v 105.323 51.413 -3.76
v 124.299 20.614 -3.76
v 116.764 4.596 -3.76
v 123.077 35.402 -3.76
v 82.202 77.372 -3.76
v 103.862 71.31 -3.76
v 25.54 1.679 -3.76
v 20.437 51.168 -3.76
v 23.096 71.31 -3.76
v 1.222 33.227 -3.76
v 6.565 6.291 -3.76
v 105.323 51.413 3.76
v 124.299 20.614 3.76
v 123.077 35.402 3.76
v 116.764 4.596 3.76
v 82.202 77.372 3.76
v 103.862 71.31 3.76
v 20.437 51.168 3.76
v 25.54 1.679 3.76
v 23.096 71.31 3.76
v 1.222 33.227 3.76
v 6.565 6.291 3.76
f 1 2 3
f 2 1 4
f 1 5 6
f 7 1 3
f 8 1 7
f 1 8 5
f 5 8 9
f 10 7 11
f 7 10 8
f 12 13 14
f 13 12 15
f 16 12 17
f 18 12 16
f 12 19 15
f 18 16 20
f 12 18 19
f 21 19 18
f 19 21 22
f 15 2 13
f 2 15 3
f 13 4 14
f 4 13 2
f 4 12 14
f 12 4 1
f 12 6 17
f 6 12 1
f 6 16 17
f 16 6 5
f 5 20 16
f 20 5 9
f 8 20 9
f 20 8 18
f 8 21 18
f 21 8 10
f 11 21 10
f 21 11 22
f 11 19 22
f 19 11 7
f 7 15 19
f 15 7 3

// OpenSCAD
/* doodle-meta {"version":1,"parameters":{"width":{"label":"Overall width","description":"Changes the body width","unit":"mm","feature":"body_width"},"height":{"label":"Overall height","description":"Changes the body height","unit":"mm","feature":"body_height"},"thickness":{"label":"Panel thickness","description":"Changes the depth of the grille panel","unit":"mm","feature":"body_thickness"},"headlight_diameter":{"label":"Headlight diameter","description":"Changes the diameter of the circular headlight cutouts","unit":"mm","feature":"headlights"},"slot_width":{"label":"Slot width","description":"Changes the width of the vertical grille slots","unit":"mm","feature":"grille_slots"},"slot_height":{"label":"Slot height","description":"Changes the height of the vertical grille slots","unit":"mm","feature":"grille_slots"},"slot_count":{"label":"Slot count","description":"Changes the number of vertical grille slots","unit":"count","feature":"grille_slots"}},"features":{"body_width":{"kind":"dimension","axis":"x","label":"Overall width"},"body_height":{"kind":"dimension","axis":"z","label":"Overall height"},"body_thickness":{"kind":"dimension","axis":"y","label":"Panel thickness"},"headlights":{"kind":"region","label":"Headlights","min":[{"parameter":"width","scale":0.0927,"offset":0},{"parameter":"thickness","scale":0,"offset":-1},{"parameter":"height","scale":0.4893,"offset":0}],"max":[{"parameter":"width","scale":0.2547,"offset":0},{"parameter":"thickness","scale":1,"offset":1},{"parameter":"height","scale":0.7509,"offset":0}]},"grille_slots":{"kind":"region","label":"Grille Slots","min":[{"parameter":"width","scale":0.2895,"offset":0},{"parameter":"thickness","scale":0,"offset":-1},{"parameter":"height","scale":0.1324,"offset":0}],"max":[{"parameter":"width","scale":0.7027,"offset":0},{"parameter":"thickness","scale":1,"offset":1},{"parameter":"height","scale":0.7385,"offset":0}]}}} */

// Parameters
width = 126.0;
height = 78.83;
thickness = 7.52;
headlight_diameter = 20.0;
slot_width = 5.0;
slot_height = 48.0;
slot_count = 7;

// Derived parameters
eps = 0.1;
slot_pitch = (width * 0.4132) / (slot_count - 1); // Approximate pitch based on measured span
slot_start_x = width * 0.3098; // Center of first slot in mm

// Modules
module grille_body() {
    // Create the main panel shape using a polygon extruded along Y
    // The polygon is defined in XZ plane (front view)
    // Coordinates are normalized [0,1] from measured outer profile, scaled to width/height
    // Note: v is down in view, so Z = (1-v)*height
    
    polygon_points = [
        [0.0097 * width, (1 - 0.5785) * height],
        [0.0521 * width, (1 - 0.9202) * height],
        [0.2027 * width, (1 - 0.9787) * height],
        [0.9267 * width, (1 - 0.9417) * height],
        [0.9865 * width, (1 - 0.7385) * height],
        [0.9768 * width, (1 - 0.5509) * height],
        [0.8359 * width, (1 - 0.3478) * height],
        [0.8243 * width, (1 - 0.0954) * height],
        [0.6524 * width, (1 - 0.0185) * height],
        [0.1833 * width, (1 - 0.0954) * height],
        [0.1622 * width, (1 - 0.3509) * height]
    ];
    
    linear_extrude(height = thickness, center = true) {
        polygon(polygon_points);
    }
}

module headlight_cutter() {
    // Cylinder axis along Y to cut through the front face
    // Positioned at center of headlight in XZ
    // Left headlight center: u=0.1747, v=0.6217 (from contour_4)
    // Right headlight center: u=0.8253, v=0.6263 (from contour_2)
    // Using average v for symmetry or specific positions. 
    // Intent says slot but description says circular. Description wins for "hole".
    // Let's use circular cutouts as per "hole" type in features.
    
    // Left
    translate([0.1747 * width, 0, (1 - 0.6217) * height]) {
        rotate([90, 0, 0]) {
            cylinder(h = thickness + 2*eps, d = headlight_diameter, center = true);
        }
    }
    
    // Right
    translate([0.8253 * width, 0, (1 - 0.6263) * height]) {
        rotate([90, 0, 0]) {
            cylinder(h = thickness + 2*eps, d = headlight_diameter, center = true);
        }
    }
}

module grille_slots_cutter() {
    // Seven vertical slots
    // Centers from measured internal profiles (contours 18, 16, 14, 12, 6, 10, 8)
    // u centers: 0.3098, 0.3736, 0.4353, 0.499, 0.5628, 0.6264, 0.6891
    // v center approx 0.437
    
    slot_centers_u = [0.3098, 0.3736, 0.4353, 0.499, 0.5628, 0.6264, 0.6891];
    slot_center_v = 0.437;
    
    for (i = [0 : slot_count - 1]) {
        translate([slot_centers_u[i] * width, 0, (1 - slot_center_v) * height]) {
            // Slot is a rounded rectangle (stadium) or just rectangle? 
            // Intent says "slot" -> stadium. But description says "rectangular slots".
            // Let's use a cube for simplicity as per "rectangular" description, 
            // but intent_refinements says "slot -> stadium". 
            // Given "rectangular" in description and "slot" in intent, 
            // and low confidence on shape, a simple rectangular cut is safer for "rectangular slots".
            // However, "slot" usually implies rounded ends. 
            // Let's stick to rectangular as per explicit description "rectangular slots".
            
            cube([slot_width, thickness + 2*eps, slot_height], center = true);
        }
    }
}

// Main Design
difference() {
    grille_body();
    headlight_cutter();
    grille_slots_cutter();
}
